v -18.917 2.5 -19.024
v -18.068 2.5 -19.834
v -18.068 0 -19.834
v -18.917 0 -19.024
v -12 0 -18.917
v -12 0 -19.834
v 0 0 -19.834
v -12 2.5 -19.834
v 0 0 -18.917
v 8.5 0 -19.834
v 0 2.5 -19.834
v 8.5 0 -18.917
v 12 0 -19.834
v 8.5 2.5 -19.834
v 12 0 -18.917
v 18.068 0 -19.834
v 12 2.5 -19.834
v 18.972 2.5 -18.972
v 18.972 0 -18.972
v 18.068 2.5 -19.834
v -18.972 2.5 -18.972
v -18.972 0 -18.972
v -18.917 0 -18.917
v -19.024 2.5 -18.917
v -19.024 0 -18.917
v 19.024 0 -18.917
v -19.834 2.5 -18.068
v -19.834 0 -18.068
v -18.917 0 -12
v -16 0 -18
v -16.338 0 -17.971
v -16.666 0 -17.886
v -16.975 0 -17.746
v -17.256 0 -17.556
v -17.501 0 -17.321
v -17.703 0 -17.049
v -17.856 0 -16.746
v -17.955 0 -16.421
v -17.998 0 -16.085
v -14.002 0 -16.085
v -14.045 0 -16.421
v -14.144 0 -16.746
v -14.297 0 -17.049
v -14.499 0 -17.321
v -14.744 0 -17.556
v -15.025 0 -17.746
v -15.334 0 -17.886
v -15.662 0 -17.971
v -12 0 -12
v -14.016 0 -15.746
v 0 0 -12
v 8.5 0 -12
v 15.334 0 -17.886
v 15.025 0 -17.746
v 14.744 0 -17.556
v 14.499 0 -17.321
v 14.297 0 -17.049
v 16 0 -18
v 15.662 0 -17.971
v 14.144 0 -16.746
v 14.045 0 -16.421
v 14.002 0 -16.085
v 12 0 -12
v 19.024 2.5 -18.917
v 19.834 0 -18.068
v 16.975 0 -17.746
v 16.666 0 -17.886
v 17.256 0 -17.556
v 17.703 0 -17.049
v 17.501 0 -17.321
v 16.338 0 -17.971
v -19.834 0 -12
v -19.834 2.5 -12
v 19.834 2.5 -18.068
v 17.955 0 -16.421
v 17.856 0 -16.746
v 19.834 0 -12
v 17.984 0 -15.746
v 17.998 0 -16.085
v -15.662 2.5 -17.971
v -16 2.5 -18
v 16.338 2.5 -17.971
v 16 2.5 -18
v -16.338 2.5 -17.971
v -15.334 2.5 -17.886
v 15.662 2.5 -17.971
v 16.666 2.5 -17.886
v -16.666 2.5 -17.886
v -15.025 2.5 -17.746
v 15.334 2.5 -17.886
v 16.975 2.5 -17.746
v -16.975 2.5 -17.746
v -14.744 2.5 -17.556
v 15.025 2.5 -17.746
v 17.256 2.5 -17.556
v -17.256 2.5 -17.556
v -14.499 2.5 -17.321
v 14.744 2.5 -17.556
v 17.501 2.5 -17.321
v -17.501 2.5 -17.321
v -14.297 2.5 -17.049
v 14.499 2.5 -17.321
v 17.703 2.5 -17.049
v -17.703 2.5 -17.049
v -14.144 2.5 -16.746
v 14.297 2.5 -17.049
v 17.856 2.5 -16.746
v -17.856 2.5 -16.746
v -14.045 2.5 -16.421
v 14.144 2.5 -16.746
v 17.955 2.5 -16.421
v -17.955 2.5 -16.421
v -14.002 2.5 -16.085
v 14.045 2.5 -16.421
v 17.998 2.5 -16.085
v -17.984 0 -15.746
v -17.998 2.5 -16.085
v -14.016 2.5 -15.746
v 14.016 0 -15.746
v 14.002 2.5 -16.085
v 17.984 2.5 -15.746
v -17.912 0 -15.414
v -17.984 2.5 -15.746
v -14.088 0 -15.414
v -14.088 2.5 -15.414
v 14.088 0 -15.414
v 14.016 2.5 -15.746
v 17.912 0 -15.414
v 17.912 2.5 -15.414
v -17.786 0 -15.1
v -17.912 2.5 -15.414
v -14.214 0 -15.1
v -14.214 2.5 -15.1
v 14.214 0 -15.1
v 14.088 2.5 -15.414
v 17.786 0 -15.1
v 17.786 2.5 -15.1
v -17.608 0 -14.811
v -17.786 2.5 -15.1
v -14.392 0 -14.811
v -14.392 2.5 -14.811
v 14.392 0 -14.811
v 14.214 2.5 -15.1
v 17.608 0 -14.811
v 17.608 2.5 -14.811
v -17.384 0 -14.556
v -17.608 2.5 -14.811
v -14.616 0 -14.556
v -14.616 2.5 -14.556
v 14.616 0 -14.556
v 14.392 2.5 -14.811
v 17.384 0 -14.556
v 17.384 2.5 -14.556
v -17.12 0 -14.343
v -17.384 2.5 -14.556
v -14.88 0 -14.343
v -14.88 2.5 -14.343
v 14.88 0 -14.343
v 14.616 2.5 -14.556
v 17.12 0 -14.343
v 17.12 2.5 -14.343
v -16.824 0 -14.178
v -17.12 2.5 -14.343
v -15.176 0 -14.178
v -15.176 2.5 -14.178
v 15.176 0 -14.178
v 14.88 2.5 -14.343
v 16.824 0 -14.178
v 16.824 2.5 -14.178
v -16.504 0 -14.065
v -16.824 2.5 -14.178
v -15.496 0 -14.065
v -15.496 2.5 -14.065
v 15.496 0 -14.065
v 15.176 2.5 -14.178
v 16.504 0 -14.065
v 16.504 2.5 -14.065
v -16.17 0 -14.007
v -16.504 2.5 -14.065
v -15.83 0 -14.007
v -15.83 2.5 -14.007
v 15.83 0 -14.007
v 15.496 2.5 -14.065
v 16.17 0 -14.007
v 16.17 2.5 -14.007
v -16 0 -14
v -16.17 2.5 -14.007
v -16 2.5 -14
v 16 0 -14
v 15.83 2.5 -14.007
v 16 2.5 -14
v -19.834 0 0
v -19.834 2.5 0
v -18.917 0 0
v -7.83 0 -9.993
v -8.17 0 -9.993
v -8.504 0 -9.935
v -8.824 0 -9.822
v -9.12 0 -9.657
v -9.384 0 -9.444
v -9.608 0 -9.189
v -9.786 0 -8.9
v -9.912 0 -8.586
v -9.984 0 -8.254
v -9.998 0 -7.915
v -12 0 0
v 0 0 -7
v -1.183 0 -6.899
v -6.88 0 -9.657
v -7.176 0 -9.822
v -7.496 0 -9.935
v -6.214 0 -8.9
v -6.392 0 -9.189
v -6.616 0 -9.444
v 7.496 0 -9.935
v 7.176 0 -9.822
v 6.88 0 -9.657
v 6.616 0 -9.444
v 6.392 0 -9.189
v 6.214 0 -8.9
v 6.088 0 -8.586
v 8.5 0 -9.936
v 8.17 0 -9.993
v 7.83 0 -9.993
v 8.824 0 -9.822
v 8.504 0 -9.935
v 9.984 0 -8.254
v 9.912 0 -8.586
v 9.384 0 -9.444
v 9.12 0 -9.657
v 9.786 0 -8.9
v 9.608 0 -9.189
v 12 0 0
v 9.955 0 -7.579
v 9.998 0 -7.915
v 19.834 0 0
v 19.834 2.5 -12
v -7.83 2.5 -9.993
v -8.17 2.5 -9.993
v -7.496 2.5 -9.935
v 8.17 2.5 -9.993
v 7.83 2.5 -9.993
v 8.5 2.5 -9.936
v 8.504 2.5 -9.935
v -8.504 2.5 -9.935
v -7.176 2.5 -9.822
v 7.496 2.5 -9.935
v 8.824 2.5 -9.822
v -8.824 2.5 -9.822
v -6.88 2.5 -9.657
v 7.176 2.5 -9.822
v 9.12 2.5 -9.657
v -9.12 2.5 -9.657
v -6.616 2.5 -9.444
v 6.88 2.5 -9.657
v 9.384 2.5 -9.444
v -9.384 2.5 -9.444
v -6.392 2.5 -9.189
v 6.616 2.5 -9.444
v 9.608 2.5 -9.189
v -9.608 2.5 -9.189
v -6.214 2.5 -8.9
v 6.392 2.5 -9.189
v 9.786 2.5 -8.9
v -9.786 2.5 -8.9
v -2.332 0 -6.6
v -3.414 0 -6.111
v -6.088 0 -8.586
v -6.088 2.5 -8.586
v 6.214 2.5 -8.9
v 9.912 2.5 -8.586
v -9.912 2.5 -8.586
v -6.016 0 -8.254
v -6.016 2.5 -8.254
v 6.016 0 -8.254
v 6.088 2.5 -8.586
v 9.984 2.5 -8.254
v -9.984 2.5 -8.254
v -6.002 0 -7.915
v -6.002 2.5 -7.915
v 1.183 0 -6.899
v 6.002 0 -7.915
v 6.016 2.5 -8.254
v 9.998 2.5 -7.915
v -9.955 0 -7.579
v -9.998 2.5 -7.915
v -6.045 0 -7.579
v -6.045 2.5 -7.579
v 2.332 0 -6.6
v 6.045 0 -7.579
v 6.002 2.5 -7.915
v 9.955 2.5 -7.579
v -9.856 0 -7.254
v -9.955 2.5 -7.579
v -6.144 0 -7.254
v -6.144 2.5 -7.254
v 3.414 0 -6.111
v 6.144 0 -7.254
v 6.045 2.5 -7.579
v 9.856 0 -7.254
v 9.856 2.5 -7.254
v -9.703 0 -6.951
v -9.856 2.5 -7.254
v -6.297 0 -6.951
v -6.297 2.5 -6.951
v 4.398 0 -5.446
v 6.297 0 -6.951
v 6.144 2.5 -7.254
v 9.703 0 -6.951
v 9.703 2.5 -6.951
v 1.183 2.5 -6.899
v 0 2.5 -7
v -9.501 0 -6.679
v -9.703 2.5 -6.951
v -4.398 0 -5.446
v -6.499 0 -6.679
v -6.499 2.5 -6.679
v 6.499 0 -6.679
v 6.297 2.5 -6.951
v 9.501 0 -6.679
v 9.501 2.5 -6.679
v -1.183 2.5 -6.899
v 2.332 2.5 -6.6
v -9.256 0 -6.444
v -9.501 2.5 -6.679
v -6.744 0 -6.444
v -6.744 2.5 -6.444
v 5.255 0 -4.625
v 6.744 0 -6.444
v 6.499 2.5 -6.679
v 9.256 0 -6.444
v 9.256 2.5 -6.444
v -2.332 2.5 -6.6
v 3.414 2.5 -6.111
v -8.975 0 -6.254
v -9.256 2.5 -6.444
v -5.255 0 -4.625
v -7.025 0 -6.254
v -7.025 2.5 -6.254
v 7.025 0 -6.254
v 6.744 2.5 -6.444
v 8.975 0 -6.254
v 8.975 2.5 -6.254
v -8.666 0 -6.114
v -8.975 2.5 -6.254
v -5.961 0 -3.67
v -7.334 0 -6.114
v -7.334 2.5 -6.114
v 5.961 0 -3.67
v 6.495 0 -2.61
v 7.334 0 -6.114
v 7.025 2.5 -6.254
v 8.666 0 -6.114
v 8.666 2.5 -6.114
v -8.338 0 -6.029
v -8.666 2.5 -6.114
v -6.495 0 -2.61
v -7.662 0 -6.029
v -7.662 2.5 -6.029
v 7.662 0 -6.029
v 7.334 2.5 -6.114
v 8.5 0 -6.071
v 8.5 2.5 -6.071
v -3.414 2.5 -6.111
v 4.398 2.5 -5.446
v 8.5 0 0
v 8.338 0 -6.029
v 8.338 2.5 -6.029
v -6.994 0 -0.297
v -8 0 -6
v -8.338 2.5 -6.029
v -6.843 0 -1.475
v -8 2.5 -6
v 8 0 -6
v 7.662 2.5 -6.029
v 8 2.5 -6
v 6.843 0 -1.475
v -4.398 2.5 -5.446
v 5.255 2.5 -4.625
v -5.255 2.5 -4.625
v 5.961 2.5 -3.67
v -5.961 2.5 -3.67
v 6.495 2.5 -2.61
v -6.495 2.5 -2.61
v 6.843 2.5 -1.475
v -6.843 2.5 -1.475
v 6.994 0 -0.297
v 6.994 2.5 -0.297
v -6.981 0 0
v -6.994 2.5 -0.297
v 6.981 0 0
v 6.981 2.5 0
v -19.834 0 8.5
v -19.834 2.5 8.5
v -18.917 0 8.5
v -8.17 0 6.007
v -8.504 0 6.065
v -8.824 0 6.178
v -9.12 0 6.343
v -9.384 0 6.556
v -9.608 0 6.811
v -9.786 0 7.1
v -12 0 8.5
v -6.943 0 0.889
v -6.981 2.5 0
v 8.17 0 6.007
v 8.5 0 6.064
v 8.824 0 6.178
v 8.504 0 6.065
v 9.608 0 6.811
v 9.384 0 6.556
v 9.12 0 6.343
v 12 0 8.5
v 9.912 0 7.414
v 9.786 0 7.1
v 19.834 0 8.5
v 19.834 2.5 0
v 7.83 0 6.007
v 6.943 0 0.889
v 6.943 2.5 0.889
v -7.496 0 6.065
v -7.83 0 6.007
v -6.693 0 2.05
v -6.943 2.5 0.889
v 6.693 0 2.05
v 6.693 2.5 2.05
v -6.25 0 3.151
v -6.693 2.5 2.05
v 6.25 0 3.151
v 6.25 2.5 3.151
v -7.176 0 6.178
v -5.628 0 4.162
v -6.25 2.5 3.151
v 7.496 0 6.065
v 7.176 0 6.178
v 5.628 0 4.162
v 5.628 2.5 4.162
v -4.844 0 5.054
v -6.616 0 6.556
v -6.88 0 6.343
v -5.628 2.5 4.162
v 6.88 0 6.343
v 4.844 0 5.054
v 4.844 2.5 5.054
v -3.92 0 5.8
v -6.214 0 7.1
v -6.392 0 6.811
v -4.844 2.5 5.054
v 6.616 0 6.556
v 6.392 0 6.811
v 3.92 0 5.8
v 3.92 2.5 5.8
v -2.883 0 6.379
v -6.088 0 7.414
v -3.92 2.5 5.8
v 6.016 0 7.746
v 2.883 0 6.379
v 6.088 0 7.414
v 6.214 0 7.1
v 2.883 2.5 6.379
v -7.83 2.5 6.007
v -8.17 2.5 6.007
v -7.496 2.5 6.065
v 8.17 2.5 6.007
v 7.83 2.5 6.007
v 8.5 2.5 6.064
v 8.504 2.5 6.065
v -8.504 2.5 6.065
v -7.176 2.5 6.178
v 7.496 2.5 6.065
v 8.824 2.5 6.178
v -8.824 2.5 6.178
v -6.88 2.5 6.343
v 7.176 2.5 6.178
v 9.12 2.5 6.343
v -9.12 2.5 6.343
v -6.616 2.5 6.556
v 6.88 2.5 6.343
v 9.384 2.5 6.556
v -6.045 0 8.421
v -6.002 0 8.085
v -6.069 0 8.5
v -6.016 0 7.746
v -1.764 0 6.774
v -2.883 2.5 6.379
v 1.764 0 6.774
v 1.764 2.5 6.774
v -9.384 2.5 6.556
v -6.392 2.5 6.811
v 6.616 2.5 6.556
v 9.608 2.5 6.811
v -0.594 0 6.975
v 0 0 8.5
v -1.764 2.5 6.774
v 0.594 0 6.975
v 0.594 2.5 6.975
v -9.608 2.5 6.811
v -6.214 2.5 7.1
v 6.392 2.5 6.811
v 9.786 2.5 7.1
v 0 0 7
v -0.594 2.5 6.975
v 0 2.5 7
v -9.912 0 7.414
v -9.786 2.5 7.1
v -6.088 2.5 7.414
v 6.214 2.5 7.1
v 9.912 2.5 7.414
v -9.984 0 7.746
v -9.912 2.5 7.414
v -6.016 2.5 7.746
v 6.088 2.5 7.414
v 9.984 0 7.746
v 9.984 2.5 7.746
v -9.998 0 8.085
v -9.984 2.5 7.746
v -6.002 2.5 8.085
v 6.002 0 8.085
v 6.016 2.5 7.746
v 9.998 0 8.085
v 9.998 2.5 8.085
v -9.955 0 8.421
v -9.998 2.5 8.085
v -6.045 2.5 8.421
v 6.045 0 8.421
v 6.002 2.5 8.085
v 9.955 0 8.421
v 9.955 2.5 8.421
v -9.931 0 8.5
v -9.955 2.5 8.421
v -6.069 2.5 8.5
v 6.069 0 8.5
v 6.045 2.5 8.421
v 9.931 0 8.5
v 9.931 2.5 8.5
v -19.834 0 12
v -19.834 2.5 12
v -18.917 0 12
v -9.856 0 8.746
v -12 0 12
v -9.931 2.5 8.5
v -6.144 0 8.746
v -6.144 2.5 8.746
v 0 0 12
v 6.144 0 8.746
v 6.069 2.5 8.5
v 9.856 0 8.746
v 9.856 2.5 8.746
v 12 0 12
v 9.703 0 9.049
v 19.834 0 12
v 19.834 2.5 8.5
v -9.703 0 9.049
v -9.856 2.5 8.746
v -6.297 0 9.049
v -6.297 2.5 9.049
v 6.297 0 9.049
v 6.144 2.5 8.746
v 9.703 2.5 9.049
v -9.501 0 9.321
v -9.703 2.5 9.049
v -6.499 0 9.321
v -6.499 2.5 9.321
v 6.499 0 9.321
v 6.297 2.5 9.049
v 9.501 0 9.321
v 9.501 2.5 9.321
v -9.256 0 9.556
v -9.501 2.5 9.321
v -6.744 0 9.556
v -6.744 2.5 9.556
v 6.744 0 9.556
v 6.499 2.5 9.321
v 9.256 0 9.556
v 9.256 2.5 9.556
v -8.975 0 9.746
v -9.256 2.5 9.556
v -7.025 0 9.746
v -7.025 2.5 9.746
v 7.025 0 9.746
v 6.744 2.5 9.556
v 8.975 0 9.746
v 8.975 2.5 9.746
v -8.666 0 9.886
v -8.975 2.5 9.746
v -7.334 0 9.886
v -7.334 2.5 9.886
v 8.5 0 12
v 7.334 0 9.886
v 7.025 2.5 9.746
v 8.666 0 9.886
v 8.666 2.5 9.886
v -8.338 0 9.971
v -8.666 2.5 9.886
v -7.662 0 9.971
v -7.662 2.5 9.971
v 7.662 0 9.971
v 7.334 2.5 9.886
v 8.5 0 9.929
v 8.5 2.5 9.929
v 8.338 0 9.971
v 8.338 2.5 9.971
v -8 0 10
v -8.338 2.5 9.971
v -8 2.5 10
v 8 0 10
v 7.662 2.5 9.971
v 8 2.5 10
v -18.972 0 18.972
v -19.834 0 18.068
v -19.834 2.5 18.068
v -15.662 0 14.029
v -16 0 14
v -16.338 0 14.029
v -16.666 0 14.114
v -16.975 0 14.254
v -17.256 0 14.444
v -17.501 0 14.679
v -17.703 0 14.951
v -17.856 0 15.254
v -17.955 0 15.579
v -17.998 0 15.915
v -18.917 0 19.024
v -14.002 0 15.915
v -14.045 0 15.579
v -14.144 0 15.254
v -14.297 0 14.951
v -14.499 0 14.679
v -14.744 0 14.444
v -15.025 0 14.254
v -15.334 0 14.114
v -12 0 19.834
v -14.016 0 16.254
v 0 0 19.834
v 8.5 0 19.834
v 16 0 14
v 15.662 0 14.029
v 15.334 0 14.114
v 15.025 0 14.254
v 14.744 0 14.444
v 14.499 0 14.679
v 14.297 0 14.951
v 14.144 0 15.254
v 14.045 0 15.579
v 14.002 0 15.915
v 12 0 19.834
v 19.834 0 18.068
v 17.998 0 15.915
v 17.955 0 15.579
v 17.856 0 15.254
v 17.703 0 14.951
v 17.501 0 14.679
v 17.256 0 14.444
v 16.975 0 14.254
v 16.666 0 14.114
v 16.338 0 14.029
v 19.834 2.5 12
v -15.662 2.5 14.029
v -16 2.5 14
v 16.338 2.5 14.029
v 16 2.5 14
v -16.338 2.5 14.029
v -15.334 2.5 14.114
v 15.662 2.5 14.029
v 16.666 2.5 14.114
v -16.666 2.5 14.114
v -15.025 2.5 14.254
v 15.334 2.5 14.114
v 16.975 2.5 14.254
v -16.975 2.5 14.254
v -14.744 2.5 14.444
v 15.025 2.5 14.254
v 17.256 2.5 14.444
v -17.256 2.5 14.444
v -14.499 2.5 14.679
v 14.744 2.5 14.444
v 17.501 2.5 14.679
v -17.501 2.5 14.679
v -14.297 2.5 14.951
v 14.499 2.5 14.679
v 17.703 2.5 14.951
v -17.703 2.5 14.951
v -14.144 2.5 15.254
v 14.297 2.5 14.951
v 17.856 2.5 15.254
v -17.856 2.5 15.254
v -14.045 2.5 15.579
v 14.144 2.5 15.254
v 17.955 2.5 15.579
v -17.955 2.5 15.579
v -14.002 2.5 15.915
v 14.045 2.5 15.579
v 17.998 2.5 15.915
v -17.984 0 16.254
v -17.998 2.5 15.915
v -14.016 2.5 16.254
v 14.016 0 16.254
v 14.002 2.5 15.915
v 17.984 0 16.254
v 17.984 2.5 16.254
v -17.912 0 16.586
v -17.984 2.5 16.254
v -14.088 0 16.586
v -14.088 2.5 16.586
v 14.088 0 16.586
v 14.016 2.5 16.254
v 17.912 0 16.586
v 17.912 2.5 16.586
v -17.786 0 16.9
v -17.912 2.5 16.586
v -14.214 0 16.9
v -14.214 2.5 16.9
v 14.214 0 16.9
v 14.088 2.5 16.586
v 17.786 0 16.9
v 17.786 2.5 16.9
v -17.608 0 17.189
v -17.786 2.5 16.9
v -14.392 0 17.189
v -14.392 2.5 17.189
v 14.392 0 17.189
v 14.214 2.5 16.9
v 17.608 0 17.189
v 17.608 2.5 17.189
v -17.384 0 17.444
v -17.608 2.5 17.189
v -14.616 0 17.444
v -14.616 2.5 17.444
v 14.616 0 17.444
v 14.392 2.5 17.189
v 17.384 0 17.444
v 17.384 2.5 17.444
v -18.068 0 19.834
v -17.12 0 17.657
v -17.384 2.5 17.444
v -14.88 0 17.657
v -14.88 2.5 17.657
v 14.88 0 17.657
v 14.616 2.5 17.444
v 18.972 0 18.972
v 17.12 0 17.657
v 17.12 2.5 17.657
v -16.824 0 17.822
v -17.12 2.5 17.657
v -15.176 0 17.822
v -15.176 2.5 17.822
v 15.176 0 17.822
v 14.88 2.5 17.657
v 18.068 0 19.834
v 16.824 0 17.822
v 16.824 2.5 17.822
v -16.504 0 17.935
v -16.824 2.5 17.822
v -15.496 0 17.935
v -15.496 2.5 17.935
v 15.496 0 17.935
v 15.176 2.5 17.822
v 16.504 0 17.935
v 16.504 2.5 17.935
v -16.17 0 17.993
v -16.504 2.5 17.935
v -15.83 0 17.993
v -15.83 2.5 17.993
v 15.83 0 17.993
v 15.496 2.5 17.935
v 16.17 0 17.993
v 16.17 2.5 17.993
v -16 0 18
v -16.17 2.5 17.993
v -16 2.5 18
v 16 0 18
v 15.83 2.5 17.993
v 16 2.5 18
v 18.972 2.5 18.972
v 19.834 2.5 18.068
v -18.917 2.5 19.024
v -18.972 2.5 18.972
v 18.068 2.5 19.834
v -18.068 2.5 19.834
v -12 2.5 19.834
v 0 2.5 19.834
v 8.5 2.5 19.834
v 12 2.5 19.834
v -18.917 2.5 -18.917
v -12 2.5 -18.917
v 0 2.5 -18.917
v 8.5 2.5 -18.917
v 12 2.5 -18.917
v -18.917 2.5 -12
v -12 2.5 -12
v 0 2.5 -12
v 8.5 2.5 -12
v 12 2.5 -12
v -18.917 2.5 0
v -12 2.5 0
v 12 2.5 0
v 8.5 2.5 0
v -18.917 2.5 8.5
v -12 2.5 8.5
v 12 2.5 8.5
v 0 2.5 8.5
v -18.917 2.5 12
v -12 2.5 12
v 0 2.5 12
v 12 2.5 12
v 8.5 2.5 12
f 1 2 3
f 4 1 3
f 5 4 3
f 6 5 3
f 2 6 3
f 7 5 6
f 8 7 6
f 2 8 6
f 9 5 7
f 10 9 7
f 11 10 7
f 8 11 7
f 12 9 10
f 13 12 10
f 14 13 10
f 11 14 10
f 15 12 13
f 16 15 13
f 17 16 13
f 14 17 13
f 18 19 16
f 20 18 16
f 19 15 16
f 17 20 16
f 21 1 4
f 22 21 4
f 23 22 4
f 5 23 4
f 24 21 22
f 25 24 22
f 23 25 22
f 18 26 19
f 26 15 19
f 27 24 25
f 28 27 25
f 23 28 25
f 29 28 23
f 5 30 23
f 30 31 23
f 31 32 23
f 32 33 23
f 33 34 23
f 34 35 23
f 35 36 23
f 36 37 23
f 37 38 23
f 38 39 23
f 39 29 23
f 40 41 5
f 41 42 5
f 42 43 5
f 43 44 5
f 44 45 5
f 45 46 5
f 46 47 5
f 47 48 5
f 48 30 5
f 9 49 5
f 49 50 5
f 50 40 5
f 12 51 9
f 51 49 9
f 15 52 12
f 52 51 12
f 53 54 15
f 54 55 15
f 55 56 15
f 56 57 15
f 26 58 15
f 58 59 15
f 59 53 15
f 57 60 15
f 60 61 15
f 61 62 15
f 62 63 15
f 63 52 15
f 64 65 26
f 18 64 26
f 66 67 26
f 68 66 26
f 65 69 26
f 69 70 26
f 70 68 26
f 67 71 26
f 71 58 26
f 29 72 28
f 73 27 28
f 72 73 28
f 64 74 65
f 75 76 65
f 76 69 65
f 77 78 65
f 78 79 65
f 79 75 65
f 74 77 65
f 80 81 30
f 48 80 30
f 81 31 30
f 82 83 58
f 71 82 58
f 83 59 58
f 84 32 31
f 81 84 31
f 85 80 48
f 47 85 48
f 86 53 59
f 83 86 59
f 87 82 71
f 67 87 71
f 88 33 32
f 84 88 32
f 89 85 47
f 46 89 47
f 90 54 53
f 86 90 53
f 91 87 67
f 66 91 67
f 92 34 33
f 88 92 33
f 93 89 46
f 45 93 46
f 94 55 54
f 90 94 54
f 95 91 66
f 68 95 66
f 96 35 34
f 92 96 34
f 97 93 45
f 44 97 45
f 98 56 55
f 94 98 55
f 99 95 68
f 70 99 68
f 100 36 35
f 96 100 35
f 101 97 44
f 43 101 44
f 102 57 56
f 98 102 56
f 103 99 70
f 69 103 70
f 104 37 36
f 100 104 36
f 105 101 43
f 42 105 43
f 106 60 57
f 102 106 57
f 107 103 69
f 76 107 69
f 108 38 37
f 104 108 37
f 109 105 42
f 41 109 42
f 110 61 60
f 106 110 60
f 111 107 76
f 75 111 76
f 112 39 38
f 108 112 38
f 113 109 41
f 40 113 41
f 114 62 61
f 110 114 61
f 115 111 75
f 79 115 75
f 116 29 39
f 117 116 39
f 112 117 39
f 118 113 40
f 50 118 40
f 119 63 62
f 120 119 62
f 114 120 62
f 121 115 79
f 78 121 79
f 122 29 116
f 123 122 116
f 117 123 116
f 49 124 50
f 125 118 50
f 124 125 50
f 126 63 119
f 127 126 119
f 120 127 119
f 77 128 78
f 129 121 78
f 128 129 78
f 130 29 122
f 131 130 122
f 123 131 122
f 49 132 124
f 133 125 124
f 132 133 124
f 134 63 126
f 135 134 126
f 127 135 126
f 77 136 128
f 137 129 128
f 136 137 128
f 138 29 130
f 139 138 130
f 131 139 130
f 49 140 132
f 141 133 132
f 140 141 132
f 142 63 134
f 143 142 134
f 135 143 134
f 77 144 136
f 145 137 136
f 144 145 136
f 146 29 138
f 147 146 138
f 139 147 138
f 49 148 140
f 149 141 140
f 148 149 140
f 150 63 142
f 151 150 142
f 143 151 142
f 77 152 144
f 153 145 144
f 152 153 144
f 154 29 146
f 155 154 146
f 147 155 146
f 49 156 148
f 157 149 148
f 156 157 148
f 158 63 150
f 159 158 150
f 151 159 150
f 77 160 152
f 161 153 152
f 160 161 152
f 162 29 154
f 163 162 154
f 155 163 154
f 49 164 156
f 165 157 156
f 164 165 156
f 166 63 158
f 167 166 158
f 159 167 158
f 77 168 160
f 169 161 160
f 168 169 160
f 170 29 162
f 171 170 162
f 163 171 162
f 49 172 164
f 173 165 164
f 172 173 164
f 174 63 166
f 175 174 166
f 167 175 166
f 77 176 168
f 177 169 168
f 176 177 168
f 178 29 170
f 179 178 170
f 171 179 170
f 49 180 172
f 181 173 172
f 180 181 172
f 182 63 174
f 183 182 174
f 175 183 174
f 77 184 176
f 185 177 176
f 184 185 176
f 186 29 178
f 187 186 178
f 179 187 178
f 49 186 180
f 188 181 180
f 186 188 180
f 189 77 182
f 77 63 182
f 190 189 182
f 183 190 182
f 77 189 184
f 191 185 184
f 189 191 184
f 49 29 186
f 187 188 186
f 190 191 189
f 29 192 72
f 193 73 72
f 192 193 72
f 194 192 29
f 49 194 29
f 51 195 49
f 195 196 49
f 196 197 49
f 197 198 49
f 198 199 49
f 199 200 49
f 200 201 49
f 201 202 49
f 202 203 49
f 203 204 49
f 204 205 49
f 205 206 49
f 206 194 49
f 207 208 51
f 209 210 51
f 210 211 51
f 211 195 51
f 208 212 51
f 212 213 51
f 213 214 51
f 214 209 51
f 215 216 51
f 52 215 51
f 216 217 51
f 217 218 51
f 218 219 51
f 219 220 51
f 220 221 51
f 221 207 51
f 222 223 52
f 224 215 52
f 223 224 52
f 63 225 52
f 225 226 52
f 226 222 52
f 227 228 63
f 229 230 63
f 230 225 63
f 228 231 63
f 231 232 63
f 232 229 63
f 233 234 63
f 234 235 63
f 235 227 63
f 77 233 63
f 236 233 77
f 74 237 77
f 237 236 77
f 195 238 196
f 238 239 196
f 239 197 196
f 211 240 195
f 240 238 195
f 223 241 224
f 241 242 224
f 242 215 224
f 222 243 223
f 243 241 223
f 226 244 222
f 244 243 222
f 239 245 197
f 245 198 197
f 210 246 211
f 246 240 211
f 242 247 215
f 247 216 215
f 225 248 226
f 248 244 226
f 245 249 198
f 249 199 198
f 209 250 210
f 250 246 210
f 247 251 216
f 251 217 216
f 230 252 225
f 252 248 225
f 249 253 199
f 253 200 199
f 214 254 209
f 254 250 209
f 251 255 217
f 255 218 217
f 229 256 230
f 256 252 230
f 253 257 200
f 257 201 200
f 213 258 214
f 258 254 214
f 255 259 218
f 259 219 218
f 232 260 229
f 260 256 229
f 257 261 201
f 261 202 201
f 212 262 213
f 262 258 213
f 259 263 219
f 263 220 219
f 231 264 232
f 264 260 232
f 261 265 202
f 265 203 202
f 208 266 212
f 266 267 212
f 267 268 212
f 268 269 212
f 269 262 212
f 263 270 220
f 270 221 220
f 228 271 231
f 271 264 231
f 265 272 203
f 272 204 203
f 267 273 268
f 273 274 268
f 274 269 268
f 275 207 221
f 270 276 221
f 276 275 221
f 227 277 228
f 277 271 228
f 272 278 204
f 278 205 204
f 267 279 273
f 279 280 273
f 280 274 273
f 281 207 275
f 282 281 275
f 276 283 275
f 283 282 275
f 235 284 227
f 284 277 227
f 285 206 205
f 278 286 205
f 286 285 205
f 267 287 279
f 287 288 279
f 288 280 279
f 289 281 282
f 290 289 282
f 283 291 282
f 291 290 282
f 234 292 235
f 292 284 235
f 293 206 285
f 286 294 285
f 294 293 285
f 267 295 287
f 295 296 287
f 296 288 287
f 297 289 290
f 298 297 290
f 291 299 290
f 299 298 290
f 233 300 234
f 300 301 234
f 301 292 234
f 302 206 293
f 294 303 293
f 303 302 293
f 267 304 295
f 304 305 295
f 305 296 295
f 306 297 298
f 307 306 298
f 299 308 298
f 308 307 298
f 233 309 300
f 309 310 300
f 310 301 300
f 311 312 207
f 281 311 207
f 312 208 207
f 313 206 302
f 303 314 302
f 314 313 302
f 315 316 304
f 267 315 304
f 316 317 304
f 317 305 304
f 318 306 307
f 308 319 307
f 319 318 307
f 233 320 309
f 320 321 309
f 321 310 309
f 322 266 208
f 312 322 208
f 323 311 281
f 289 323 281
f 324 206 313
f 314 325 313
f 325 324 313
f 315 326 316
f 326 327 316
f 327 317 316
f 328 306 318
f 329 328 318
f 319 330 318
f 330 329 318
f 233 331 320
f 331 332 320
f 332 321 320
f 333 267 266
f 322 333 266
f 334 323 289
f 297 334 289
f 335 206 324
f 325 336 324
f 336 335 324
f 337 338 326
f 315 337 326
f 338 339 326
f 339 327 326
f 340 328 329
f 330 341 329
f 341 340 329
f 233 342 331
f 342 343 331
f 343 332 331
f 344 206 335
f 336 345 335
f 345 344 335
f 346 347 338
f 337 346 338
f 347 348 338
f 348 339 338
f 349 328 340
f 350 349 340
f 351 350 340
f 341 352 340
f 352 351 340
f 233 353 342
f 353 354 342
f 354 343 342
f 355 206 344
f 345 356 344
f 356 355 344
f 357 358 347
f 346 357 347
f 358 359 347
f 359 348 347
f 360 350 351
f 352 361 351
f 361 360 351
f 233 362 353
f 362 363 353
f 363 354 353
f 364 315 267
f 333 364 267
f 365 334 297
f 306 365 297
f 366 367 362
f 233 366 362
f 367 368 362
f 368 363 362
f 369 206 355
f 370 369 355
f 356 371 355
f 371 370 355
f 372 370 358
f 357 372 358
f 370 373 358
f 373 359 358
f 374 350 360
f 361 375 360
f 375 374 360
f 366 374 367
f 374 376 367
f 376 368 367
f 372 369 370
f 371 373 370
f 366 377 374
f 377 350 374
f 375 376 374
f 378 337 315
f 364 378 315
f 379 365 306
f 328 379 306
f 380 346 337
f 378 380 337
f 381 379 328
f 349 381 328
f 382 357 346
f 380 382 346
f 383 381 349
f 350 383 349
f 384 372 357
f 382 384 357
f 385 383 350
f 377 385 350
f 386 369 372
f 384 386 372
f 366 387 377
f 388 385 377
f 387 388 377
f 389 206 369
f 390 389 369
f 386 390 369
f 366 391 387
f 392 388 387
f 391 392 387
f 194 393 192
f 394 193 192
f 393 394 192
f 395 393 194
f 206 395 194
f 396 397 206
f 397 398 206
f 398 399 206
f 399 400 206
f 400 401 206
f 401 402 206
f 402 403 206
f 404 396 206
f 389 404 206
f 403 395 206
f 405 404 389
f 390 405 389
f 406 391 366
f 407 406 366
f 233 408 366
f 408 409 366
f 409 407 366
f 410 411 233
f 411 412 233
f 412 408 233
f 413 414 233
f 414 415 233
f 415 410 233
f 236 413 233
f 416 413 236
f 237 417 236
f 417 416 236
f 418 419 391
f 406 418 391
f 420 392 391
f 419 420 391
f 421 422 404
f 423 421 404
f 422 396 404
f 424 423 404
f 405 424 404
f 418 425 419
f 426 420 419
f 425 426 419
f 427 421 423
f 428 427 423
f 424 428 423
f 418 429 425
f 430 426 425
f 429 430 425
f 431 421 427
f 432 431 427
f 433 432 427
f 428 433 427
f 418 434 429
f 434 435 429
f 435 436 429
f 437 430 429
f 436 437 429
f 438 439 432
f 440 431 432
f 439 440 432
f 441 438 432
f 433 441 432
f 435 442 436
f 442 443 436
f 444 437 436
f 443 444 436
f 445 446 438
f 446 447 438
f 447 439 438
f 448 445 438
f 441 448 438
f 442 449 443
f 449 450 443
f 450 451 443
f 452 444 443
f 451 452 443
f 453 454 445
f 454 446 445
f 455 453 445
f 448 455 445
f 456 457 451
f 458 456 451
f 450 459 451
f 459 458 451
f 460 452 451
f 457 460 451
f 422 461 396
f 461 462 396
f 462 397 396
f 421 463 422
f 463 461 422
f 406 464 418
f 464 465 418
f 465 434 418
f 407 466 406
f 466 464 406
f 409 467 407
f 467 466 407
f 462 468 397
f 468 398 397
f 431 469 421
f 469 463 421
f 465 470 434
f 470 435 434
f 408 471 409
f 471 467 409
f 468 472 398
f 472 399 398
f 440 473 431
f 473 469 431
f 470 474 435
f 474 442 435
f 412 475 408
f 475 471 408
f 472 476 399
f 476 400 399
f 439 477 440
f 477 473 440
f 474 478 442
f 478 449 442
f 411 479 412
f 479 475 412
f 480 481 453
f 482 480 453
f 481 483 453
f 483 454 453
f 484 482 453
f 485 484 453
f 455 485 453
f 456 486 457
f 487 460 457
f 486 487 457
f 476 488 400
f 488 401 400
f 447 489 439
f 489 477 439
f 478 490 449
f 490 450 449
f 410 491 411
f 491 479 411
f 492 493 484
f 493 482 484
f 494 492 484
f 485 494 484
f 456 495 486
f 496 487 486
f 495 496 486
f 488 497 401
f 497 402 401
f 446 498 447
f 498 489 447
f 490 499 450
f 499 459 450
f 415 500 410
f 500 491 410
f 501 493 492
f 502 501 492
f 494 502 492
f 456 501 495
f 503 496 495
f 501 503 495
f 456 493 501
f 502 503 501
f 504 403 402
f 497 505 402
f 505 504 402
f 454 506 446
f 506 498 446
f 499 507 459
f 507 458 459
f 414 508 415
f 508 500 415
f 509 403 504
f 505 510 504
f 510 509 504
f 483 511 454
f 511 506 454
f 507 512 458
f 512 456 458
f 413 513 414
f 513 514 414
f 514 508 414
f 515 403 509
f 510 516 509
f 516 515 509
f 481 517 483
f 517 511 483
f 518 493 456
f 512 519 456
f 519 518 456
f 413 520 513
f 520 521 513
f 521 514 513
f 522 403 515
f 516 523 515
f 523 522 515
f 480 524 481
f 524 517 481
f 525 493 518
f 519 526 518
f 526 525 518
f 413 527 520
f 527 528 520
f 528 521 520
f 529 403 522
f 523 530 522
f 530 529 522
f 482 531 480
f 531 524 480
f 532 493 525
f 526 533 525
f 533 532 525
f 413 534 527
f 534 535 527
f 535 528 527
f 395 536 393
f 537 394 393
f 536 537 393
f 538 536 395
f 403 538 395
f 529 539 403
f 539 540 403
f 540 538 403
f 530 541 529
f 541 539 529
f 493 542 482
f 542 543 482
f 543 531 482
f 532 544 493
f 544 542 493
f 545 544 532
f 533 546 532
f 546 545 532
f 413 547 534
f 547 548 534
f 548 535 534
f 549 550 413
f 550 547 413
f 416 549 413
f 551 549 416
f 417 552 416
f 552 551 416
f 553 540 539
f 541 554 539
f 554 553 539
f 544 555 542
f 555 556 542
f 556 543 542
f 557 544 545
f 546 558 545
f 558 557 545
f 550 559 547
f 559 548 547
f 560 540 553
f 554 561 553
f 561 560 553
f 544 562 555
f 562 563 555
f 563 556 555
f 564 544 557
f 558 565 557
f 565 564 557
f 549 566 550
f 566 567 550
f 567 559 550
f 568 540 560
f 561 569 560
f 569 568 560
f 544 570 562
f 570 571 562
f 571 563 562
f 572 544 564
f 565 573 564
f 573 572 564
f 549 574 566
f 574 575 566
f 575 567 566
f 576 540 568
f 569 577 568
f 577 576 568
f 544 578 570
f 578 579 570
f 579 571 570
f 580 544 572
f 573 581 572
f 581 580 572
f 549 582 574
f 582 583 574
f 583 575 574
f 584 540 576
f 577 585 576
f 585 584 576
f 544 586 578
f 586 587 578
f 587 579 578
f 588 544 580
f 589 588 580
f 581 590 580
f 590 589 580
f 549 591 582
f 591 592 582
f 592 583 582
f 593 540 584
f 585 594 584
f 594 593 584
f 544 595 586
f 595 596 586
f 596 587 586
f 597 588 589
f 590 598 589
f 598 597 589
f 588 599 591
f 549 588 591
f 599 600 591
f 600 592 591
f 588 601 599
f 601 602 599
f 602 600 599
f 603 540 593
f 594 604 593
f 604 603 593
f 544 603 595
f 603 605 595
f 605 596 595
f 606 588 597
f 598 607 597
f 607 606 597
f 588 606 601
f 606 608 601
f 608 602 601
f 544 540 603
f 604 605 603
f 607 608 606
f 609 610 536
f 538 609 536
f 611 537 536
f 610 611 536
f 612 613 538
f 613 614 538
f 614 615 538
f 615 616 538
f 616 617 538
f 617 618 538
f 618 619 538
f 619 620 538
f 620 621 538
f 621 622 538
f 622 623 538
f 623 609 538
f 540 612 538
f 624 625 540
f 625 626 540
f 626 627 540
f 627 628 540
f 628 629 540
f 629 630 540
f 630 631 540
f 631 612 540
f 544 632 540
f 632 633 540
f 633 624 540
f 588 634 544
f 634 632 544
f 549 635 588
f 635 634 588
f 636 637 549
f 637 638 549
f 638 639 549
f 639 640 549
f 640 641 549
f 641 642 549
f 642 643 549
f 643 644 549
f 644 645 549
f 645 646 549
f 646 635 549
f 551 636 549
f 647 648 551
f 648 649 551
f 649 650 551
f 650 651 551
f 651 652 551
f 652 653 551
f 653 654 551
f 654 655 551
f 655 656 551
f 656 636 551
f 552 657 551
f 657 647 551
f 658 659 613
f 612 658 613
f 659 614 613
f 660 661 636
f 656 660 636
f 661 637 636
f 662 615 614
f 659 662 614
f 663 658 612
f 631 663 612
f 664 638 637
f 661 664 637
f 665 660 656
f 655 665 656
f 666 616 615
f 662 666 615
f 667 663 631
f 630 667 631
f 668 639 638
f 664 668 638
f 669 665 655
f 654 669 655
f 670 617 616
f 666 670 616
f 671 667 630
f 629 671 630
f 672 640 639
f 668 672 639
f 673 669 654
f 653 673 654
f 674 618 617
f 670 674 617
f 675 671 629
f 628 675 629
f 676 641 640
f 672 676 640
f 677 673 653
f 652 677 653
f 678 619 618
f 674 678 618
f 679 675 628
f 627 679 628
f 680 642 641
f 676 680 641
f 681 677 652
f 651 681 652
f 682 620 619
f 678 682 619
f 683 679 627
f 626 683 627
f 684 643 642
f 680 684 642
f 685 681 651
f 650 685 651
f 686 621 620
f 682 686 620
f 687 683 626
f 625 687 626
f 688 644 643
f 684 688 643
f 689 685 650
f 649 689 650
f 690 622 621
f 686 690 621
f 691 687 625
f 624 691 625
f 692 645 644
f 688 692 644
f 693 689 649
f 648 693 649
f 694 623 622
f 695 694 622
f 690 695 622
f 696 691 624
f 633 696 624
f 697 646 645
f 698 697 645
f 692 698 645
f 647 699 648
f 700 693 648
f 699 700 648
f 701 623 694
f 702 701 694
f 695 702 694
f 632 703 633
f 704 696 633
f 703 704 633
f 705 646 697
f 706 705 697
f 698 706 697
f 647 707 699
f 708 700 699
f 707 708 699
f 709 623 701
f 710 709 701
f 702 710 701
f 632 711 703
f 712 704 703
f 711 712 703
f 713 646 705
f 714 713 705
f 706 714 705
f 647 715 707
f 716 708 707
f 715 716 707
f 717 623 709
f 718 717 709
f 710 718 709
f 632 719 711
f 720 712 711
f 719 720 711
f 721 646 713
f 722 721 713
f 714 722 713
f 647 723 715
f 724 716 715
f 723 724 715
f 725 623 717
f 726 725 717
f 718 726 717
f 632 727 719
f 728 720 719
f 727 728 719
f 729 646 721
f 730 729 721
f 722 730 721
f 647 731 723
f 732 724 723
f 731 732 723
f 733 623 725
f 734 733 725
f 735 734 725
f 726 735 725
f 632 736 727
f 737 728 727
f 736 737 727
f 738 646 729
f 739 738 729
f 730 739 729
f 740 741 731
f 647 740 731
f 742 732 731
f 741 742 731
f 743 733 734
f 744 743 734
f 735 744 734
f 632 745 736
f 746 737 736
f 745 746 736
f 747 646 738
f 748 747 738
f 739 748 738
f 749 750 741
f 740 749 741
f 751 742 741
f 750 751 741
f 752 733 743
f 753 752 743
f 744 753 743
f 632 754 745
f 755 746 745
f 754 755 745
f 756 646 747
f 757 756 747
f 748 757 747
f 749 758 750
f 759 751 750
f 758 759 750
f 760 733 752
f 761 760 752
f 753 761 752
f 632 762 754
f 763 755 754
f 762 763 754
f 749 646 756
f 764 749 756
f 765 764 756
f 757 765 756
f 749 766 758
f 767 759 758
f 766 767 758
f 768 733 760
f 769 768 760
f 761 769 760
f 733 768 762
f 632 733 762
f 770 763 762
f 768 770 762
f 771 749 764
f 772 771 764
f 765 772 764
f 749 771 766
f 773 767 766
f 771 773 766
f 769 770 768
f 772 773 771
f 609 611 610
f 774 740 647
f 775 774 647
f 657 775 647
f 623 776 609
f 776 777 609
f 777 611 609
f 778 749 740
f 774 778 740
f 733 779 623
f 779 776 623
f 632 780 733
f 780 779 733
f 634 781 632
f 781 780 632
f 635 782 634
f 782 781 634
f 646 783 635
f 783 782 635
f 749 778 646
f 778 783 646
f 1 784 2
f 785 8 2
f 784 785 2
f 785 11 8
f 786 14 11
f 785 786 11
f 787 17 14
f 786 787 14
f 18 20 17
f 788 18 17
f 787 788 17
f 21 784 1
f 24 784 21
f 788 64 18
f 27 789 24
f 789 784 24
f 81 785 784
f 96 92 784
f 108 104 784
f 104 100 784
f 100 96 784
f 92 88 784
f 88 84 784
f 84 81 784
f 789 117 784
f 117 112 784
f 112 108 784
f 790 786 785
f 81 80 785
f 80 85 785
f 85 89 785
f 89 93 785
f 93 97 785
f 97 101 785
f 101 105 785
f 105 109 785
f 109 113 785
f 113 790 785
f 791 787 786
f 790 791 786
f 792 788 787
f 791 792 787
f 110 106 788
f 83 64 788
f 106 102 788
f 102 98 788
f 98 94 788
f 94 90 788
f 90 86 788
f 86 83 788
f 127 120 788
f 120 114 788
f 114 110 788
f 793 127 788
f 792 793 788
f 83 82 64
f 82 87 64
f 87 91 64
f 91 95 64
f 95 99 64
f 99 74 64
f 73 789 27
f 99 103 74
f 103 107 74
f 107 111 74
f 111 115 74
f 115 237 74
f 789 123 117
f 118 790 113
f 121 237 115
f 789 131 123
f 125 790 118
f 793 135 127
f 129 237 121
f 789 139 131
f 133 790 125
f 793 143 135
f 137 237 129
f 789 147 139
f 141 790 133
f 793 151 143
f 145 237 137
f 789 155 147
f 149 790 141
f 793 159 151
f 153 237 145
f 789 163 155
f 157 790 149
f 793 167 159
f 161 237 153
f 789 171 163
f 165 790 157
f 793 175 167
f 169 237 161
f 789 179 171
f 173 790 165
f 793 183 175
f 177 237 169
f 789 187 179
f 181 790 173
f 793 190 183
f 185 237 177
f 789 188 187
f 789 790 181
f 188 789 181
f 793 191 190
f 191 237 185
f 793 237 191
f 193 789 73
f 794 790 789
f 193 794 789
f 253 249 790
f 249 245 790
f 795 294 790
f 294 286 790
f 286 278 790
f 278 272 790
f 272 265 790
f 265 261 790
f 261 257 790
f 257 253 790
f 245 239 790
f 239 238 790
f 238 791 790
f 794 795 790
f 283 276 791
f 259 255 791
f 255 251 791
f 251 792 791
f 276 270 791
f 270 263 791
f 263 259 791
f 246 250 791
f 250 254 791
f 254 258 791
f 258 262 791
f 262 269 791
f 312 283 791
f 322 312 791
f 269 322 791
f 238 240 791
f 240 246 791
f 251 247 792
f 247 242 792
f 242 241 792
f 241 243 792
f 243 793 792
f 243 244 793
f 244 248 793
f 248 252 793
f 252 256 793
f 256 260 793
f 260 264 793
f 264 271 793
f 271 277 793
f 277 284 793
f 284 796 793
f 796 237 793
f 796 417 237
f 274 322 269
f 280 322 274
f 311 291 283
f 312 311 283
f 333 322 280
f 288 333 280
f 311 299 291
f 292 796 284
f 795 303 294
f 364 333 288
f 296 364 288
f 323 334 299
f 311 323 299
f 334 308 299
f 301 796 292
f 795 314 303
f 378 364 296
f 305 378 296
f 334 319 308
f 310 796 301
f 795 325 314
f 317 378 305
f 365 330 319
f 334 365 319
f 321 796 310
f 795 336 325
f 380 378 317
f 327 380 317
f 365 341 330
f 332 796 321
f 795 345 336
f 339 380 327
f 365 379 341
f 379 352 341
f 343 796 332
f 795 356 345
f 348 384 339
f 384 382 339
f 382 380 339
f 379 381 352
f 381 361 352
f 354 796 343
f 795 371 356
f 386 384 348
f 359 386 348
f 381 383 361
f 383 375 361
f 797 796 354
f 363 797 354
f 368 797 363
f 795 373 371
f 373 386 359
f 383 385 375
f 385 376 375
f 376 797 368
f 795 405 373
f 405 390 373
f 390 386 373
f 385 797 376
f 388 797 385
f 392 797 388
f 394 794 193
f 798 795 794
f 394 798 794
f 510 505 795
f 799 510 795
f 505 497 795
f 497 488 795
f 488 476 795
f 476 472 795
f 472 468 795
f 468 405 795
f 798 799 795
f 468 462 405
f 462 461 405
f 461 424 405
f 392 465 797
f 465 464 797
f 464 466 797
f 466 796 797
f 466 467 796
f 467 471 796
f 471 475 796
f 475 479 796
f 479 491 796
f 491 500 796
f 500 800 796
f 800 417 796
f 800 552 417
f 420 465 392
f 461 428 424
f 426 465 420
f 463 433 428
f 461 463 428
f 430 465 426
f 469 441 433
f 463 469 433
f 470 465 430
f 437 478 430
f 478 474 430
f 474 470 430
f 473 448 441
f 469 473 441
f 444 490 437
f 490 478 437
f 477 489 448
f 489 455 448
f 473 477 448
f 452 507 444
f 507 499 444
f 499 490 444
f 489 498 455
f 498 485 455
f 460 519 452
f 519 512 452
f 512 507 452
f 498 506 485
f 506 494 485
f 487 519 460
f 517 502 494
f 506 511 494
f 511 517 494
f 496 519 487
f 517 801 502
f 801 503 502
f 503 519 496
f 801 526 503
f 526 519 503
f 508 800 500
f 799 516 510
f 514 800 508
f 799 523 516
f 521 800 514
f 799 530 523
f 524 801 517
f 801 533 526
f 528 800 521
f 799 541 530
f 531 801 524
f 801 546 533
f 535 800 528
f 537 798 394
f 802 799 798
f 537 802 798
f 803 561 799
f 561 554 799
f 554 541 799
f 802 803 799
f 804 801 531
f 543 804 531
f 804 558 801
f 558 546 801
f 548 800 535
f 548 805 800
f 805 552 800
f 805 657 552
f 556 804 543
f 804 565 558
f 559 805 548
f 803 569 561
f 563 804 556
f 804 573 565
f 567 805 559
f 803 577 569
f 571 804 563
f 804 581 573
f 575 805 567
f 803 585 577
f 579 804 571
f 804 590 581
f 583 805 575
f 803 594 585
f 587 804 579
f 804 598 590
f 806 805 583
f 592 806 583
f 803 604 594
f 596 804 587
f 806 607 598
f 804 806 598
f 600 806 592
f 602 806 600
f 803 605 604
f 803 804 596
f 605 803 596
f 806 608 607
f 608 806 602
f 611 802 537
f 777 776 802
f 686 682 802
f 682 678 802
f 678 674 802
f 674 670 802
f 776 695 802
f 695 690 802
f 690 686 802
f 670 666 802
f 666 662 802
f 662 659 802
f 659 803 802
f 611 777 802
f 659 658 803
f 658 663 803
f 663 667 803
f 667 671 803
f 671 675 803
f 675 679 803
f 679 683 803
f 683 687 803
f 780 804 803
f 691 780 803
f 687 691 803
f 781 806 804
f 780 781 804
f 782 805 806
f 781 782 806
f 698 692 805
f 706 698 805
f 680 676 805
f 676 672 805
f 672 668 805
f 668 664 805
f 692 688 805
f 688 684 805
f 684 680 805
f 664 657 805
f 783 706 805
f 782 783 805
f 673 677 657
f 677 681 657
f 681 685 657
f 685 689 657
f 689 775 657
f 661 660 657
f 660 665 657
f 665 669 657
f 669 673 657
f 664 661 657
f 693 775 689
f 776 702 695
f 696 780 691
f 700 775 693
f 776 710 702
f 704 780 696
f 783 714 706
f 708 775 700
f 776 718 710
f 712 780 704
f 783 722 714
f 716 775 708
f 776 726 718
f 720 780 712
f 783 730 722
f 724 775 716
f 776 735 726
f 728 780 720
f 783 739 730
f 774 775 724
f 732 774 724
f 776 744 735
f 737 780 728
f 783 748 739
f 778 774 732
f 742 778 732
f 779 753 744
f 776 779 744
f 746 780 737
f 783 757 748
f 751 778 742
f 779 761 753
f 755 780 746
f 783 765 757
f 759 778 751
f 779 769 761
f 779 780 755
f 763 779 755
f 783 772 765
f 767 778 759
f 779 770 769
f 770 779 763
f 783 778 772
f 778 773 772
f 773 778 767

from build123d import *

# Parameters (mm, degrees)
SKETCH1_R           = 26.83
SKETCH1_R_2         = 7
SKETCH1_R_3         = 2
BOSS_EXTRUDE1_DEPTH = 2.5
CUT_EXTRUDE1_DEPTH  = 10
CUT_EXTRUDE2_DEPTH  = 10


with BuildPart() as part:
    # Sketch1 → Boss-Extrude1 (new body)
    with BuildSketch(Plane(origin=(0, 0, 0), x_dir=(1, 0, 0), z_dir=(0, 1, 0))):
        Circle(SKETCH1_R)
        Circle(SKETCH1_R_2, mode=Mode.SUBTRACT)
        with Locations((-16.000000001, 16.000000001)):
            Circle(SKETCH1_R_3, mode=Mode.SUBTRACT)
        with Locations((16.000000001, 16.000000001)):
            Circle(SKETCH1_R_3, mode=Mode.SUBTRACT)
        with Locations((16.000000001, -16.000000001)):
            Circle(SKETCH1_R_3, mode=Mode.SUBTRACT)
        with Locations((-16.000000001, -16.000000001)):
            Circle(SKETCH1_R_3, mode=Mode.SUBTRACT)
    extrude(amount=BOSS_EXTRUDE1_DEPTH)

    # Sketch2 → Cut-Extrude1 (cut)
    with BuildSketch(Plane(origin=(0, 2.5, 0), x_dir=(1, 0, 0), z_dir=(0, 1, 0))):
        with BuildLine():
            ThreePointArc((-6.000000001, 8.000000001), (-9.414213563, 9.414213563), (-8.000000001, 6.000000001))
            Line((-8.000000001, 6.000000001), (-8.000000001, 8.000000001))
            Line((-8.000000001, 8.000000001), (-6.000000001, 8.000000001))
        make_face()
        with BuildLine():
            Line((-8.000000001, 8.000000001), (-8.000000001, 6.000000001))
            ThreePointArc((-8.000000001, 6.000000001), (-6.585786438, 6.585786438), (-6.000000001, 8.000000001))
            Line((-6.000000001, 8.000000001), (-8.000000001, 8.000000001))
        make_face()
        with BuildLine():
            ThreePointArc((6.000000001, 8.000000001), (6.585786438, 6.585786438), (8.000000001, 6.000000001))
            Line((8.000000001, 6.000000001), (8.000000001, 8.000000001))
            Line((8.000000001, 8.000000001), (6.000000001, 8.000000001))
        make_face()
        with BuildLine():
            Line((8.000000001, 8.000000001), (8.000000001, 6.000000001))
            ThreePointArc((8.000000001, 6.000000001), (9.414213563, 6.585786438), (10.000000001, 8.000000001))
            ThreePointArc((10.000000001, 8.000000001), (8.000000001, 10.000000001), (6.000000001, 8.000000001))
            Line((6.000000001, 8.000000001), (8.000000001, 8.000000001))
        make_face()
        with BuildLine():
            Line((-6.000000001, -8.000000001), (-8.000000001, -8.000000001))
            Line((-8.000000001, -8.000000001), (-8.000000001, -6.000000001))
            ThreePointArc((-8.000000001, -6.000000001), (-9.414213563, -9.414213563), (-6.000000001, -8.000000001))
        make_face()
        with BuildLine():
            ThreePointArc((-6.000000001, -8.000000001), (-6.152240936, -7.234633136), (-6.585786438, -6.585786438))
            Line((-6.585786438, -6.585786438), (-8.000000001, -8.000000001))
            Line((-8.000000001, -8.000000001), (-6.000000001, -8.000000001))
        make_face()
        with BuildLine():
            Line((-8.000000001, -8.000000001), (-6.585786438, -6.585786438))
            ThreePointArc((-6.585786438, -6.585786438), (-7.234633136, -6.152240936), (-8.000000001, -6.000000001))
            Line((-8.000000001, -6.000000001), (-8.000000001, -8.000000001))
        make_face()
        with BuildLine():
            ThreePointArc((8.000000001, -6.000000001), (6.585786438, -6.585786438), (6.000000001, -8.000000001))
            Line((6.000000001, -8.000000001), (8.000000001, -8.000000001))
            Line((8.000000001, -8.000000001), (8.000000001, -6.000000001))
        make_face()
        with BuildLine():
            Line((8.000000001, -8.000000001), (6.000000001, -8.000000001))
            ThreePointArc((6.000000001, -8.000000001), (8.000000001, -10.000000001), (10.000000001, -8.000000001))
            ThreePointArc((10.000000001, -8.000000001), (9.414213563, -6.585786438), (8.000000001, -6.000000001))
            Line((8.000000001, -6.000000001), (8.000000001, -8.000000001))
        make_face()
    extrude(amount=-CUT_EXTRUDE1_DEPTH, mode=Mode.SUBTRACT)

    # Sketch3 → Cut-Extrude2 (cut)
    with BuildSketch(Plane(origin=(0, 2.5, 0), x_dir=(1, 0, 0), z_dir=(0, 1, 0))):
        with BuildLine():
            Line((-19.833935995, -18.068311569), (-19.833935995, 18.068311569))
            ThreePointArc((-19.833935995, 18.068311569), (-26.83, 0), (-19.833935995, -18.068311569))
        make_face()
        with BuildLine():
            Line((-18.068311569, 19.833935995), (18.068311569, 19.833935995))
            ThreePointArc((18.068311569, 19.833935995), (0, 26.83), (-18.068311569, 19.833935995))
        make_face()
        with BuildLine():
            ThreePointArc((26.83, 0), (25.019926086, 9.687734443), (19.833935995, 18.068311569))
            Line((19.833935995, 18.068311569), (19.833935995, -18.068311569))
            ThreePointArc((19.833935995, -18.068311569), (25.019926086, -9.687734443), (26.83, 0))
        make_face()
        with BuildLine():
            ThreePointArc((-18.068311569, -19.833935995), (0, -26.83), (18.068311569, -19.833935995))
            Line((18.068311569, -19.833935995), (-18.068311569, -19.833935995))
        make_face()
    extrude(amount=-CUT_EXTRUDE2_DEPTH, mode=Mode.SUBTRACT)


solid = part.part
